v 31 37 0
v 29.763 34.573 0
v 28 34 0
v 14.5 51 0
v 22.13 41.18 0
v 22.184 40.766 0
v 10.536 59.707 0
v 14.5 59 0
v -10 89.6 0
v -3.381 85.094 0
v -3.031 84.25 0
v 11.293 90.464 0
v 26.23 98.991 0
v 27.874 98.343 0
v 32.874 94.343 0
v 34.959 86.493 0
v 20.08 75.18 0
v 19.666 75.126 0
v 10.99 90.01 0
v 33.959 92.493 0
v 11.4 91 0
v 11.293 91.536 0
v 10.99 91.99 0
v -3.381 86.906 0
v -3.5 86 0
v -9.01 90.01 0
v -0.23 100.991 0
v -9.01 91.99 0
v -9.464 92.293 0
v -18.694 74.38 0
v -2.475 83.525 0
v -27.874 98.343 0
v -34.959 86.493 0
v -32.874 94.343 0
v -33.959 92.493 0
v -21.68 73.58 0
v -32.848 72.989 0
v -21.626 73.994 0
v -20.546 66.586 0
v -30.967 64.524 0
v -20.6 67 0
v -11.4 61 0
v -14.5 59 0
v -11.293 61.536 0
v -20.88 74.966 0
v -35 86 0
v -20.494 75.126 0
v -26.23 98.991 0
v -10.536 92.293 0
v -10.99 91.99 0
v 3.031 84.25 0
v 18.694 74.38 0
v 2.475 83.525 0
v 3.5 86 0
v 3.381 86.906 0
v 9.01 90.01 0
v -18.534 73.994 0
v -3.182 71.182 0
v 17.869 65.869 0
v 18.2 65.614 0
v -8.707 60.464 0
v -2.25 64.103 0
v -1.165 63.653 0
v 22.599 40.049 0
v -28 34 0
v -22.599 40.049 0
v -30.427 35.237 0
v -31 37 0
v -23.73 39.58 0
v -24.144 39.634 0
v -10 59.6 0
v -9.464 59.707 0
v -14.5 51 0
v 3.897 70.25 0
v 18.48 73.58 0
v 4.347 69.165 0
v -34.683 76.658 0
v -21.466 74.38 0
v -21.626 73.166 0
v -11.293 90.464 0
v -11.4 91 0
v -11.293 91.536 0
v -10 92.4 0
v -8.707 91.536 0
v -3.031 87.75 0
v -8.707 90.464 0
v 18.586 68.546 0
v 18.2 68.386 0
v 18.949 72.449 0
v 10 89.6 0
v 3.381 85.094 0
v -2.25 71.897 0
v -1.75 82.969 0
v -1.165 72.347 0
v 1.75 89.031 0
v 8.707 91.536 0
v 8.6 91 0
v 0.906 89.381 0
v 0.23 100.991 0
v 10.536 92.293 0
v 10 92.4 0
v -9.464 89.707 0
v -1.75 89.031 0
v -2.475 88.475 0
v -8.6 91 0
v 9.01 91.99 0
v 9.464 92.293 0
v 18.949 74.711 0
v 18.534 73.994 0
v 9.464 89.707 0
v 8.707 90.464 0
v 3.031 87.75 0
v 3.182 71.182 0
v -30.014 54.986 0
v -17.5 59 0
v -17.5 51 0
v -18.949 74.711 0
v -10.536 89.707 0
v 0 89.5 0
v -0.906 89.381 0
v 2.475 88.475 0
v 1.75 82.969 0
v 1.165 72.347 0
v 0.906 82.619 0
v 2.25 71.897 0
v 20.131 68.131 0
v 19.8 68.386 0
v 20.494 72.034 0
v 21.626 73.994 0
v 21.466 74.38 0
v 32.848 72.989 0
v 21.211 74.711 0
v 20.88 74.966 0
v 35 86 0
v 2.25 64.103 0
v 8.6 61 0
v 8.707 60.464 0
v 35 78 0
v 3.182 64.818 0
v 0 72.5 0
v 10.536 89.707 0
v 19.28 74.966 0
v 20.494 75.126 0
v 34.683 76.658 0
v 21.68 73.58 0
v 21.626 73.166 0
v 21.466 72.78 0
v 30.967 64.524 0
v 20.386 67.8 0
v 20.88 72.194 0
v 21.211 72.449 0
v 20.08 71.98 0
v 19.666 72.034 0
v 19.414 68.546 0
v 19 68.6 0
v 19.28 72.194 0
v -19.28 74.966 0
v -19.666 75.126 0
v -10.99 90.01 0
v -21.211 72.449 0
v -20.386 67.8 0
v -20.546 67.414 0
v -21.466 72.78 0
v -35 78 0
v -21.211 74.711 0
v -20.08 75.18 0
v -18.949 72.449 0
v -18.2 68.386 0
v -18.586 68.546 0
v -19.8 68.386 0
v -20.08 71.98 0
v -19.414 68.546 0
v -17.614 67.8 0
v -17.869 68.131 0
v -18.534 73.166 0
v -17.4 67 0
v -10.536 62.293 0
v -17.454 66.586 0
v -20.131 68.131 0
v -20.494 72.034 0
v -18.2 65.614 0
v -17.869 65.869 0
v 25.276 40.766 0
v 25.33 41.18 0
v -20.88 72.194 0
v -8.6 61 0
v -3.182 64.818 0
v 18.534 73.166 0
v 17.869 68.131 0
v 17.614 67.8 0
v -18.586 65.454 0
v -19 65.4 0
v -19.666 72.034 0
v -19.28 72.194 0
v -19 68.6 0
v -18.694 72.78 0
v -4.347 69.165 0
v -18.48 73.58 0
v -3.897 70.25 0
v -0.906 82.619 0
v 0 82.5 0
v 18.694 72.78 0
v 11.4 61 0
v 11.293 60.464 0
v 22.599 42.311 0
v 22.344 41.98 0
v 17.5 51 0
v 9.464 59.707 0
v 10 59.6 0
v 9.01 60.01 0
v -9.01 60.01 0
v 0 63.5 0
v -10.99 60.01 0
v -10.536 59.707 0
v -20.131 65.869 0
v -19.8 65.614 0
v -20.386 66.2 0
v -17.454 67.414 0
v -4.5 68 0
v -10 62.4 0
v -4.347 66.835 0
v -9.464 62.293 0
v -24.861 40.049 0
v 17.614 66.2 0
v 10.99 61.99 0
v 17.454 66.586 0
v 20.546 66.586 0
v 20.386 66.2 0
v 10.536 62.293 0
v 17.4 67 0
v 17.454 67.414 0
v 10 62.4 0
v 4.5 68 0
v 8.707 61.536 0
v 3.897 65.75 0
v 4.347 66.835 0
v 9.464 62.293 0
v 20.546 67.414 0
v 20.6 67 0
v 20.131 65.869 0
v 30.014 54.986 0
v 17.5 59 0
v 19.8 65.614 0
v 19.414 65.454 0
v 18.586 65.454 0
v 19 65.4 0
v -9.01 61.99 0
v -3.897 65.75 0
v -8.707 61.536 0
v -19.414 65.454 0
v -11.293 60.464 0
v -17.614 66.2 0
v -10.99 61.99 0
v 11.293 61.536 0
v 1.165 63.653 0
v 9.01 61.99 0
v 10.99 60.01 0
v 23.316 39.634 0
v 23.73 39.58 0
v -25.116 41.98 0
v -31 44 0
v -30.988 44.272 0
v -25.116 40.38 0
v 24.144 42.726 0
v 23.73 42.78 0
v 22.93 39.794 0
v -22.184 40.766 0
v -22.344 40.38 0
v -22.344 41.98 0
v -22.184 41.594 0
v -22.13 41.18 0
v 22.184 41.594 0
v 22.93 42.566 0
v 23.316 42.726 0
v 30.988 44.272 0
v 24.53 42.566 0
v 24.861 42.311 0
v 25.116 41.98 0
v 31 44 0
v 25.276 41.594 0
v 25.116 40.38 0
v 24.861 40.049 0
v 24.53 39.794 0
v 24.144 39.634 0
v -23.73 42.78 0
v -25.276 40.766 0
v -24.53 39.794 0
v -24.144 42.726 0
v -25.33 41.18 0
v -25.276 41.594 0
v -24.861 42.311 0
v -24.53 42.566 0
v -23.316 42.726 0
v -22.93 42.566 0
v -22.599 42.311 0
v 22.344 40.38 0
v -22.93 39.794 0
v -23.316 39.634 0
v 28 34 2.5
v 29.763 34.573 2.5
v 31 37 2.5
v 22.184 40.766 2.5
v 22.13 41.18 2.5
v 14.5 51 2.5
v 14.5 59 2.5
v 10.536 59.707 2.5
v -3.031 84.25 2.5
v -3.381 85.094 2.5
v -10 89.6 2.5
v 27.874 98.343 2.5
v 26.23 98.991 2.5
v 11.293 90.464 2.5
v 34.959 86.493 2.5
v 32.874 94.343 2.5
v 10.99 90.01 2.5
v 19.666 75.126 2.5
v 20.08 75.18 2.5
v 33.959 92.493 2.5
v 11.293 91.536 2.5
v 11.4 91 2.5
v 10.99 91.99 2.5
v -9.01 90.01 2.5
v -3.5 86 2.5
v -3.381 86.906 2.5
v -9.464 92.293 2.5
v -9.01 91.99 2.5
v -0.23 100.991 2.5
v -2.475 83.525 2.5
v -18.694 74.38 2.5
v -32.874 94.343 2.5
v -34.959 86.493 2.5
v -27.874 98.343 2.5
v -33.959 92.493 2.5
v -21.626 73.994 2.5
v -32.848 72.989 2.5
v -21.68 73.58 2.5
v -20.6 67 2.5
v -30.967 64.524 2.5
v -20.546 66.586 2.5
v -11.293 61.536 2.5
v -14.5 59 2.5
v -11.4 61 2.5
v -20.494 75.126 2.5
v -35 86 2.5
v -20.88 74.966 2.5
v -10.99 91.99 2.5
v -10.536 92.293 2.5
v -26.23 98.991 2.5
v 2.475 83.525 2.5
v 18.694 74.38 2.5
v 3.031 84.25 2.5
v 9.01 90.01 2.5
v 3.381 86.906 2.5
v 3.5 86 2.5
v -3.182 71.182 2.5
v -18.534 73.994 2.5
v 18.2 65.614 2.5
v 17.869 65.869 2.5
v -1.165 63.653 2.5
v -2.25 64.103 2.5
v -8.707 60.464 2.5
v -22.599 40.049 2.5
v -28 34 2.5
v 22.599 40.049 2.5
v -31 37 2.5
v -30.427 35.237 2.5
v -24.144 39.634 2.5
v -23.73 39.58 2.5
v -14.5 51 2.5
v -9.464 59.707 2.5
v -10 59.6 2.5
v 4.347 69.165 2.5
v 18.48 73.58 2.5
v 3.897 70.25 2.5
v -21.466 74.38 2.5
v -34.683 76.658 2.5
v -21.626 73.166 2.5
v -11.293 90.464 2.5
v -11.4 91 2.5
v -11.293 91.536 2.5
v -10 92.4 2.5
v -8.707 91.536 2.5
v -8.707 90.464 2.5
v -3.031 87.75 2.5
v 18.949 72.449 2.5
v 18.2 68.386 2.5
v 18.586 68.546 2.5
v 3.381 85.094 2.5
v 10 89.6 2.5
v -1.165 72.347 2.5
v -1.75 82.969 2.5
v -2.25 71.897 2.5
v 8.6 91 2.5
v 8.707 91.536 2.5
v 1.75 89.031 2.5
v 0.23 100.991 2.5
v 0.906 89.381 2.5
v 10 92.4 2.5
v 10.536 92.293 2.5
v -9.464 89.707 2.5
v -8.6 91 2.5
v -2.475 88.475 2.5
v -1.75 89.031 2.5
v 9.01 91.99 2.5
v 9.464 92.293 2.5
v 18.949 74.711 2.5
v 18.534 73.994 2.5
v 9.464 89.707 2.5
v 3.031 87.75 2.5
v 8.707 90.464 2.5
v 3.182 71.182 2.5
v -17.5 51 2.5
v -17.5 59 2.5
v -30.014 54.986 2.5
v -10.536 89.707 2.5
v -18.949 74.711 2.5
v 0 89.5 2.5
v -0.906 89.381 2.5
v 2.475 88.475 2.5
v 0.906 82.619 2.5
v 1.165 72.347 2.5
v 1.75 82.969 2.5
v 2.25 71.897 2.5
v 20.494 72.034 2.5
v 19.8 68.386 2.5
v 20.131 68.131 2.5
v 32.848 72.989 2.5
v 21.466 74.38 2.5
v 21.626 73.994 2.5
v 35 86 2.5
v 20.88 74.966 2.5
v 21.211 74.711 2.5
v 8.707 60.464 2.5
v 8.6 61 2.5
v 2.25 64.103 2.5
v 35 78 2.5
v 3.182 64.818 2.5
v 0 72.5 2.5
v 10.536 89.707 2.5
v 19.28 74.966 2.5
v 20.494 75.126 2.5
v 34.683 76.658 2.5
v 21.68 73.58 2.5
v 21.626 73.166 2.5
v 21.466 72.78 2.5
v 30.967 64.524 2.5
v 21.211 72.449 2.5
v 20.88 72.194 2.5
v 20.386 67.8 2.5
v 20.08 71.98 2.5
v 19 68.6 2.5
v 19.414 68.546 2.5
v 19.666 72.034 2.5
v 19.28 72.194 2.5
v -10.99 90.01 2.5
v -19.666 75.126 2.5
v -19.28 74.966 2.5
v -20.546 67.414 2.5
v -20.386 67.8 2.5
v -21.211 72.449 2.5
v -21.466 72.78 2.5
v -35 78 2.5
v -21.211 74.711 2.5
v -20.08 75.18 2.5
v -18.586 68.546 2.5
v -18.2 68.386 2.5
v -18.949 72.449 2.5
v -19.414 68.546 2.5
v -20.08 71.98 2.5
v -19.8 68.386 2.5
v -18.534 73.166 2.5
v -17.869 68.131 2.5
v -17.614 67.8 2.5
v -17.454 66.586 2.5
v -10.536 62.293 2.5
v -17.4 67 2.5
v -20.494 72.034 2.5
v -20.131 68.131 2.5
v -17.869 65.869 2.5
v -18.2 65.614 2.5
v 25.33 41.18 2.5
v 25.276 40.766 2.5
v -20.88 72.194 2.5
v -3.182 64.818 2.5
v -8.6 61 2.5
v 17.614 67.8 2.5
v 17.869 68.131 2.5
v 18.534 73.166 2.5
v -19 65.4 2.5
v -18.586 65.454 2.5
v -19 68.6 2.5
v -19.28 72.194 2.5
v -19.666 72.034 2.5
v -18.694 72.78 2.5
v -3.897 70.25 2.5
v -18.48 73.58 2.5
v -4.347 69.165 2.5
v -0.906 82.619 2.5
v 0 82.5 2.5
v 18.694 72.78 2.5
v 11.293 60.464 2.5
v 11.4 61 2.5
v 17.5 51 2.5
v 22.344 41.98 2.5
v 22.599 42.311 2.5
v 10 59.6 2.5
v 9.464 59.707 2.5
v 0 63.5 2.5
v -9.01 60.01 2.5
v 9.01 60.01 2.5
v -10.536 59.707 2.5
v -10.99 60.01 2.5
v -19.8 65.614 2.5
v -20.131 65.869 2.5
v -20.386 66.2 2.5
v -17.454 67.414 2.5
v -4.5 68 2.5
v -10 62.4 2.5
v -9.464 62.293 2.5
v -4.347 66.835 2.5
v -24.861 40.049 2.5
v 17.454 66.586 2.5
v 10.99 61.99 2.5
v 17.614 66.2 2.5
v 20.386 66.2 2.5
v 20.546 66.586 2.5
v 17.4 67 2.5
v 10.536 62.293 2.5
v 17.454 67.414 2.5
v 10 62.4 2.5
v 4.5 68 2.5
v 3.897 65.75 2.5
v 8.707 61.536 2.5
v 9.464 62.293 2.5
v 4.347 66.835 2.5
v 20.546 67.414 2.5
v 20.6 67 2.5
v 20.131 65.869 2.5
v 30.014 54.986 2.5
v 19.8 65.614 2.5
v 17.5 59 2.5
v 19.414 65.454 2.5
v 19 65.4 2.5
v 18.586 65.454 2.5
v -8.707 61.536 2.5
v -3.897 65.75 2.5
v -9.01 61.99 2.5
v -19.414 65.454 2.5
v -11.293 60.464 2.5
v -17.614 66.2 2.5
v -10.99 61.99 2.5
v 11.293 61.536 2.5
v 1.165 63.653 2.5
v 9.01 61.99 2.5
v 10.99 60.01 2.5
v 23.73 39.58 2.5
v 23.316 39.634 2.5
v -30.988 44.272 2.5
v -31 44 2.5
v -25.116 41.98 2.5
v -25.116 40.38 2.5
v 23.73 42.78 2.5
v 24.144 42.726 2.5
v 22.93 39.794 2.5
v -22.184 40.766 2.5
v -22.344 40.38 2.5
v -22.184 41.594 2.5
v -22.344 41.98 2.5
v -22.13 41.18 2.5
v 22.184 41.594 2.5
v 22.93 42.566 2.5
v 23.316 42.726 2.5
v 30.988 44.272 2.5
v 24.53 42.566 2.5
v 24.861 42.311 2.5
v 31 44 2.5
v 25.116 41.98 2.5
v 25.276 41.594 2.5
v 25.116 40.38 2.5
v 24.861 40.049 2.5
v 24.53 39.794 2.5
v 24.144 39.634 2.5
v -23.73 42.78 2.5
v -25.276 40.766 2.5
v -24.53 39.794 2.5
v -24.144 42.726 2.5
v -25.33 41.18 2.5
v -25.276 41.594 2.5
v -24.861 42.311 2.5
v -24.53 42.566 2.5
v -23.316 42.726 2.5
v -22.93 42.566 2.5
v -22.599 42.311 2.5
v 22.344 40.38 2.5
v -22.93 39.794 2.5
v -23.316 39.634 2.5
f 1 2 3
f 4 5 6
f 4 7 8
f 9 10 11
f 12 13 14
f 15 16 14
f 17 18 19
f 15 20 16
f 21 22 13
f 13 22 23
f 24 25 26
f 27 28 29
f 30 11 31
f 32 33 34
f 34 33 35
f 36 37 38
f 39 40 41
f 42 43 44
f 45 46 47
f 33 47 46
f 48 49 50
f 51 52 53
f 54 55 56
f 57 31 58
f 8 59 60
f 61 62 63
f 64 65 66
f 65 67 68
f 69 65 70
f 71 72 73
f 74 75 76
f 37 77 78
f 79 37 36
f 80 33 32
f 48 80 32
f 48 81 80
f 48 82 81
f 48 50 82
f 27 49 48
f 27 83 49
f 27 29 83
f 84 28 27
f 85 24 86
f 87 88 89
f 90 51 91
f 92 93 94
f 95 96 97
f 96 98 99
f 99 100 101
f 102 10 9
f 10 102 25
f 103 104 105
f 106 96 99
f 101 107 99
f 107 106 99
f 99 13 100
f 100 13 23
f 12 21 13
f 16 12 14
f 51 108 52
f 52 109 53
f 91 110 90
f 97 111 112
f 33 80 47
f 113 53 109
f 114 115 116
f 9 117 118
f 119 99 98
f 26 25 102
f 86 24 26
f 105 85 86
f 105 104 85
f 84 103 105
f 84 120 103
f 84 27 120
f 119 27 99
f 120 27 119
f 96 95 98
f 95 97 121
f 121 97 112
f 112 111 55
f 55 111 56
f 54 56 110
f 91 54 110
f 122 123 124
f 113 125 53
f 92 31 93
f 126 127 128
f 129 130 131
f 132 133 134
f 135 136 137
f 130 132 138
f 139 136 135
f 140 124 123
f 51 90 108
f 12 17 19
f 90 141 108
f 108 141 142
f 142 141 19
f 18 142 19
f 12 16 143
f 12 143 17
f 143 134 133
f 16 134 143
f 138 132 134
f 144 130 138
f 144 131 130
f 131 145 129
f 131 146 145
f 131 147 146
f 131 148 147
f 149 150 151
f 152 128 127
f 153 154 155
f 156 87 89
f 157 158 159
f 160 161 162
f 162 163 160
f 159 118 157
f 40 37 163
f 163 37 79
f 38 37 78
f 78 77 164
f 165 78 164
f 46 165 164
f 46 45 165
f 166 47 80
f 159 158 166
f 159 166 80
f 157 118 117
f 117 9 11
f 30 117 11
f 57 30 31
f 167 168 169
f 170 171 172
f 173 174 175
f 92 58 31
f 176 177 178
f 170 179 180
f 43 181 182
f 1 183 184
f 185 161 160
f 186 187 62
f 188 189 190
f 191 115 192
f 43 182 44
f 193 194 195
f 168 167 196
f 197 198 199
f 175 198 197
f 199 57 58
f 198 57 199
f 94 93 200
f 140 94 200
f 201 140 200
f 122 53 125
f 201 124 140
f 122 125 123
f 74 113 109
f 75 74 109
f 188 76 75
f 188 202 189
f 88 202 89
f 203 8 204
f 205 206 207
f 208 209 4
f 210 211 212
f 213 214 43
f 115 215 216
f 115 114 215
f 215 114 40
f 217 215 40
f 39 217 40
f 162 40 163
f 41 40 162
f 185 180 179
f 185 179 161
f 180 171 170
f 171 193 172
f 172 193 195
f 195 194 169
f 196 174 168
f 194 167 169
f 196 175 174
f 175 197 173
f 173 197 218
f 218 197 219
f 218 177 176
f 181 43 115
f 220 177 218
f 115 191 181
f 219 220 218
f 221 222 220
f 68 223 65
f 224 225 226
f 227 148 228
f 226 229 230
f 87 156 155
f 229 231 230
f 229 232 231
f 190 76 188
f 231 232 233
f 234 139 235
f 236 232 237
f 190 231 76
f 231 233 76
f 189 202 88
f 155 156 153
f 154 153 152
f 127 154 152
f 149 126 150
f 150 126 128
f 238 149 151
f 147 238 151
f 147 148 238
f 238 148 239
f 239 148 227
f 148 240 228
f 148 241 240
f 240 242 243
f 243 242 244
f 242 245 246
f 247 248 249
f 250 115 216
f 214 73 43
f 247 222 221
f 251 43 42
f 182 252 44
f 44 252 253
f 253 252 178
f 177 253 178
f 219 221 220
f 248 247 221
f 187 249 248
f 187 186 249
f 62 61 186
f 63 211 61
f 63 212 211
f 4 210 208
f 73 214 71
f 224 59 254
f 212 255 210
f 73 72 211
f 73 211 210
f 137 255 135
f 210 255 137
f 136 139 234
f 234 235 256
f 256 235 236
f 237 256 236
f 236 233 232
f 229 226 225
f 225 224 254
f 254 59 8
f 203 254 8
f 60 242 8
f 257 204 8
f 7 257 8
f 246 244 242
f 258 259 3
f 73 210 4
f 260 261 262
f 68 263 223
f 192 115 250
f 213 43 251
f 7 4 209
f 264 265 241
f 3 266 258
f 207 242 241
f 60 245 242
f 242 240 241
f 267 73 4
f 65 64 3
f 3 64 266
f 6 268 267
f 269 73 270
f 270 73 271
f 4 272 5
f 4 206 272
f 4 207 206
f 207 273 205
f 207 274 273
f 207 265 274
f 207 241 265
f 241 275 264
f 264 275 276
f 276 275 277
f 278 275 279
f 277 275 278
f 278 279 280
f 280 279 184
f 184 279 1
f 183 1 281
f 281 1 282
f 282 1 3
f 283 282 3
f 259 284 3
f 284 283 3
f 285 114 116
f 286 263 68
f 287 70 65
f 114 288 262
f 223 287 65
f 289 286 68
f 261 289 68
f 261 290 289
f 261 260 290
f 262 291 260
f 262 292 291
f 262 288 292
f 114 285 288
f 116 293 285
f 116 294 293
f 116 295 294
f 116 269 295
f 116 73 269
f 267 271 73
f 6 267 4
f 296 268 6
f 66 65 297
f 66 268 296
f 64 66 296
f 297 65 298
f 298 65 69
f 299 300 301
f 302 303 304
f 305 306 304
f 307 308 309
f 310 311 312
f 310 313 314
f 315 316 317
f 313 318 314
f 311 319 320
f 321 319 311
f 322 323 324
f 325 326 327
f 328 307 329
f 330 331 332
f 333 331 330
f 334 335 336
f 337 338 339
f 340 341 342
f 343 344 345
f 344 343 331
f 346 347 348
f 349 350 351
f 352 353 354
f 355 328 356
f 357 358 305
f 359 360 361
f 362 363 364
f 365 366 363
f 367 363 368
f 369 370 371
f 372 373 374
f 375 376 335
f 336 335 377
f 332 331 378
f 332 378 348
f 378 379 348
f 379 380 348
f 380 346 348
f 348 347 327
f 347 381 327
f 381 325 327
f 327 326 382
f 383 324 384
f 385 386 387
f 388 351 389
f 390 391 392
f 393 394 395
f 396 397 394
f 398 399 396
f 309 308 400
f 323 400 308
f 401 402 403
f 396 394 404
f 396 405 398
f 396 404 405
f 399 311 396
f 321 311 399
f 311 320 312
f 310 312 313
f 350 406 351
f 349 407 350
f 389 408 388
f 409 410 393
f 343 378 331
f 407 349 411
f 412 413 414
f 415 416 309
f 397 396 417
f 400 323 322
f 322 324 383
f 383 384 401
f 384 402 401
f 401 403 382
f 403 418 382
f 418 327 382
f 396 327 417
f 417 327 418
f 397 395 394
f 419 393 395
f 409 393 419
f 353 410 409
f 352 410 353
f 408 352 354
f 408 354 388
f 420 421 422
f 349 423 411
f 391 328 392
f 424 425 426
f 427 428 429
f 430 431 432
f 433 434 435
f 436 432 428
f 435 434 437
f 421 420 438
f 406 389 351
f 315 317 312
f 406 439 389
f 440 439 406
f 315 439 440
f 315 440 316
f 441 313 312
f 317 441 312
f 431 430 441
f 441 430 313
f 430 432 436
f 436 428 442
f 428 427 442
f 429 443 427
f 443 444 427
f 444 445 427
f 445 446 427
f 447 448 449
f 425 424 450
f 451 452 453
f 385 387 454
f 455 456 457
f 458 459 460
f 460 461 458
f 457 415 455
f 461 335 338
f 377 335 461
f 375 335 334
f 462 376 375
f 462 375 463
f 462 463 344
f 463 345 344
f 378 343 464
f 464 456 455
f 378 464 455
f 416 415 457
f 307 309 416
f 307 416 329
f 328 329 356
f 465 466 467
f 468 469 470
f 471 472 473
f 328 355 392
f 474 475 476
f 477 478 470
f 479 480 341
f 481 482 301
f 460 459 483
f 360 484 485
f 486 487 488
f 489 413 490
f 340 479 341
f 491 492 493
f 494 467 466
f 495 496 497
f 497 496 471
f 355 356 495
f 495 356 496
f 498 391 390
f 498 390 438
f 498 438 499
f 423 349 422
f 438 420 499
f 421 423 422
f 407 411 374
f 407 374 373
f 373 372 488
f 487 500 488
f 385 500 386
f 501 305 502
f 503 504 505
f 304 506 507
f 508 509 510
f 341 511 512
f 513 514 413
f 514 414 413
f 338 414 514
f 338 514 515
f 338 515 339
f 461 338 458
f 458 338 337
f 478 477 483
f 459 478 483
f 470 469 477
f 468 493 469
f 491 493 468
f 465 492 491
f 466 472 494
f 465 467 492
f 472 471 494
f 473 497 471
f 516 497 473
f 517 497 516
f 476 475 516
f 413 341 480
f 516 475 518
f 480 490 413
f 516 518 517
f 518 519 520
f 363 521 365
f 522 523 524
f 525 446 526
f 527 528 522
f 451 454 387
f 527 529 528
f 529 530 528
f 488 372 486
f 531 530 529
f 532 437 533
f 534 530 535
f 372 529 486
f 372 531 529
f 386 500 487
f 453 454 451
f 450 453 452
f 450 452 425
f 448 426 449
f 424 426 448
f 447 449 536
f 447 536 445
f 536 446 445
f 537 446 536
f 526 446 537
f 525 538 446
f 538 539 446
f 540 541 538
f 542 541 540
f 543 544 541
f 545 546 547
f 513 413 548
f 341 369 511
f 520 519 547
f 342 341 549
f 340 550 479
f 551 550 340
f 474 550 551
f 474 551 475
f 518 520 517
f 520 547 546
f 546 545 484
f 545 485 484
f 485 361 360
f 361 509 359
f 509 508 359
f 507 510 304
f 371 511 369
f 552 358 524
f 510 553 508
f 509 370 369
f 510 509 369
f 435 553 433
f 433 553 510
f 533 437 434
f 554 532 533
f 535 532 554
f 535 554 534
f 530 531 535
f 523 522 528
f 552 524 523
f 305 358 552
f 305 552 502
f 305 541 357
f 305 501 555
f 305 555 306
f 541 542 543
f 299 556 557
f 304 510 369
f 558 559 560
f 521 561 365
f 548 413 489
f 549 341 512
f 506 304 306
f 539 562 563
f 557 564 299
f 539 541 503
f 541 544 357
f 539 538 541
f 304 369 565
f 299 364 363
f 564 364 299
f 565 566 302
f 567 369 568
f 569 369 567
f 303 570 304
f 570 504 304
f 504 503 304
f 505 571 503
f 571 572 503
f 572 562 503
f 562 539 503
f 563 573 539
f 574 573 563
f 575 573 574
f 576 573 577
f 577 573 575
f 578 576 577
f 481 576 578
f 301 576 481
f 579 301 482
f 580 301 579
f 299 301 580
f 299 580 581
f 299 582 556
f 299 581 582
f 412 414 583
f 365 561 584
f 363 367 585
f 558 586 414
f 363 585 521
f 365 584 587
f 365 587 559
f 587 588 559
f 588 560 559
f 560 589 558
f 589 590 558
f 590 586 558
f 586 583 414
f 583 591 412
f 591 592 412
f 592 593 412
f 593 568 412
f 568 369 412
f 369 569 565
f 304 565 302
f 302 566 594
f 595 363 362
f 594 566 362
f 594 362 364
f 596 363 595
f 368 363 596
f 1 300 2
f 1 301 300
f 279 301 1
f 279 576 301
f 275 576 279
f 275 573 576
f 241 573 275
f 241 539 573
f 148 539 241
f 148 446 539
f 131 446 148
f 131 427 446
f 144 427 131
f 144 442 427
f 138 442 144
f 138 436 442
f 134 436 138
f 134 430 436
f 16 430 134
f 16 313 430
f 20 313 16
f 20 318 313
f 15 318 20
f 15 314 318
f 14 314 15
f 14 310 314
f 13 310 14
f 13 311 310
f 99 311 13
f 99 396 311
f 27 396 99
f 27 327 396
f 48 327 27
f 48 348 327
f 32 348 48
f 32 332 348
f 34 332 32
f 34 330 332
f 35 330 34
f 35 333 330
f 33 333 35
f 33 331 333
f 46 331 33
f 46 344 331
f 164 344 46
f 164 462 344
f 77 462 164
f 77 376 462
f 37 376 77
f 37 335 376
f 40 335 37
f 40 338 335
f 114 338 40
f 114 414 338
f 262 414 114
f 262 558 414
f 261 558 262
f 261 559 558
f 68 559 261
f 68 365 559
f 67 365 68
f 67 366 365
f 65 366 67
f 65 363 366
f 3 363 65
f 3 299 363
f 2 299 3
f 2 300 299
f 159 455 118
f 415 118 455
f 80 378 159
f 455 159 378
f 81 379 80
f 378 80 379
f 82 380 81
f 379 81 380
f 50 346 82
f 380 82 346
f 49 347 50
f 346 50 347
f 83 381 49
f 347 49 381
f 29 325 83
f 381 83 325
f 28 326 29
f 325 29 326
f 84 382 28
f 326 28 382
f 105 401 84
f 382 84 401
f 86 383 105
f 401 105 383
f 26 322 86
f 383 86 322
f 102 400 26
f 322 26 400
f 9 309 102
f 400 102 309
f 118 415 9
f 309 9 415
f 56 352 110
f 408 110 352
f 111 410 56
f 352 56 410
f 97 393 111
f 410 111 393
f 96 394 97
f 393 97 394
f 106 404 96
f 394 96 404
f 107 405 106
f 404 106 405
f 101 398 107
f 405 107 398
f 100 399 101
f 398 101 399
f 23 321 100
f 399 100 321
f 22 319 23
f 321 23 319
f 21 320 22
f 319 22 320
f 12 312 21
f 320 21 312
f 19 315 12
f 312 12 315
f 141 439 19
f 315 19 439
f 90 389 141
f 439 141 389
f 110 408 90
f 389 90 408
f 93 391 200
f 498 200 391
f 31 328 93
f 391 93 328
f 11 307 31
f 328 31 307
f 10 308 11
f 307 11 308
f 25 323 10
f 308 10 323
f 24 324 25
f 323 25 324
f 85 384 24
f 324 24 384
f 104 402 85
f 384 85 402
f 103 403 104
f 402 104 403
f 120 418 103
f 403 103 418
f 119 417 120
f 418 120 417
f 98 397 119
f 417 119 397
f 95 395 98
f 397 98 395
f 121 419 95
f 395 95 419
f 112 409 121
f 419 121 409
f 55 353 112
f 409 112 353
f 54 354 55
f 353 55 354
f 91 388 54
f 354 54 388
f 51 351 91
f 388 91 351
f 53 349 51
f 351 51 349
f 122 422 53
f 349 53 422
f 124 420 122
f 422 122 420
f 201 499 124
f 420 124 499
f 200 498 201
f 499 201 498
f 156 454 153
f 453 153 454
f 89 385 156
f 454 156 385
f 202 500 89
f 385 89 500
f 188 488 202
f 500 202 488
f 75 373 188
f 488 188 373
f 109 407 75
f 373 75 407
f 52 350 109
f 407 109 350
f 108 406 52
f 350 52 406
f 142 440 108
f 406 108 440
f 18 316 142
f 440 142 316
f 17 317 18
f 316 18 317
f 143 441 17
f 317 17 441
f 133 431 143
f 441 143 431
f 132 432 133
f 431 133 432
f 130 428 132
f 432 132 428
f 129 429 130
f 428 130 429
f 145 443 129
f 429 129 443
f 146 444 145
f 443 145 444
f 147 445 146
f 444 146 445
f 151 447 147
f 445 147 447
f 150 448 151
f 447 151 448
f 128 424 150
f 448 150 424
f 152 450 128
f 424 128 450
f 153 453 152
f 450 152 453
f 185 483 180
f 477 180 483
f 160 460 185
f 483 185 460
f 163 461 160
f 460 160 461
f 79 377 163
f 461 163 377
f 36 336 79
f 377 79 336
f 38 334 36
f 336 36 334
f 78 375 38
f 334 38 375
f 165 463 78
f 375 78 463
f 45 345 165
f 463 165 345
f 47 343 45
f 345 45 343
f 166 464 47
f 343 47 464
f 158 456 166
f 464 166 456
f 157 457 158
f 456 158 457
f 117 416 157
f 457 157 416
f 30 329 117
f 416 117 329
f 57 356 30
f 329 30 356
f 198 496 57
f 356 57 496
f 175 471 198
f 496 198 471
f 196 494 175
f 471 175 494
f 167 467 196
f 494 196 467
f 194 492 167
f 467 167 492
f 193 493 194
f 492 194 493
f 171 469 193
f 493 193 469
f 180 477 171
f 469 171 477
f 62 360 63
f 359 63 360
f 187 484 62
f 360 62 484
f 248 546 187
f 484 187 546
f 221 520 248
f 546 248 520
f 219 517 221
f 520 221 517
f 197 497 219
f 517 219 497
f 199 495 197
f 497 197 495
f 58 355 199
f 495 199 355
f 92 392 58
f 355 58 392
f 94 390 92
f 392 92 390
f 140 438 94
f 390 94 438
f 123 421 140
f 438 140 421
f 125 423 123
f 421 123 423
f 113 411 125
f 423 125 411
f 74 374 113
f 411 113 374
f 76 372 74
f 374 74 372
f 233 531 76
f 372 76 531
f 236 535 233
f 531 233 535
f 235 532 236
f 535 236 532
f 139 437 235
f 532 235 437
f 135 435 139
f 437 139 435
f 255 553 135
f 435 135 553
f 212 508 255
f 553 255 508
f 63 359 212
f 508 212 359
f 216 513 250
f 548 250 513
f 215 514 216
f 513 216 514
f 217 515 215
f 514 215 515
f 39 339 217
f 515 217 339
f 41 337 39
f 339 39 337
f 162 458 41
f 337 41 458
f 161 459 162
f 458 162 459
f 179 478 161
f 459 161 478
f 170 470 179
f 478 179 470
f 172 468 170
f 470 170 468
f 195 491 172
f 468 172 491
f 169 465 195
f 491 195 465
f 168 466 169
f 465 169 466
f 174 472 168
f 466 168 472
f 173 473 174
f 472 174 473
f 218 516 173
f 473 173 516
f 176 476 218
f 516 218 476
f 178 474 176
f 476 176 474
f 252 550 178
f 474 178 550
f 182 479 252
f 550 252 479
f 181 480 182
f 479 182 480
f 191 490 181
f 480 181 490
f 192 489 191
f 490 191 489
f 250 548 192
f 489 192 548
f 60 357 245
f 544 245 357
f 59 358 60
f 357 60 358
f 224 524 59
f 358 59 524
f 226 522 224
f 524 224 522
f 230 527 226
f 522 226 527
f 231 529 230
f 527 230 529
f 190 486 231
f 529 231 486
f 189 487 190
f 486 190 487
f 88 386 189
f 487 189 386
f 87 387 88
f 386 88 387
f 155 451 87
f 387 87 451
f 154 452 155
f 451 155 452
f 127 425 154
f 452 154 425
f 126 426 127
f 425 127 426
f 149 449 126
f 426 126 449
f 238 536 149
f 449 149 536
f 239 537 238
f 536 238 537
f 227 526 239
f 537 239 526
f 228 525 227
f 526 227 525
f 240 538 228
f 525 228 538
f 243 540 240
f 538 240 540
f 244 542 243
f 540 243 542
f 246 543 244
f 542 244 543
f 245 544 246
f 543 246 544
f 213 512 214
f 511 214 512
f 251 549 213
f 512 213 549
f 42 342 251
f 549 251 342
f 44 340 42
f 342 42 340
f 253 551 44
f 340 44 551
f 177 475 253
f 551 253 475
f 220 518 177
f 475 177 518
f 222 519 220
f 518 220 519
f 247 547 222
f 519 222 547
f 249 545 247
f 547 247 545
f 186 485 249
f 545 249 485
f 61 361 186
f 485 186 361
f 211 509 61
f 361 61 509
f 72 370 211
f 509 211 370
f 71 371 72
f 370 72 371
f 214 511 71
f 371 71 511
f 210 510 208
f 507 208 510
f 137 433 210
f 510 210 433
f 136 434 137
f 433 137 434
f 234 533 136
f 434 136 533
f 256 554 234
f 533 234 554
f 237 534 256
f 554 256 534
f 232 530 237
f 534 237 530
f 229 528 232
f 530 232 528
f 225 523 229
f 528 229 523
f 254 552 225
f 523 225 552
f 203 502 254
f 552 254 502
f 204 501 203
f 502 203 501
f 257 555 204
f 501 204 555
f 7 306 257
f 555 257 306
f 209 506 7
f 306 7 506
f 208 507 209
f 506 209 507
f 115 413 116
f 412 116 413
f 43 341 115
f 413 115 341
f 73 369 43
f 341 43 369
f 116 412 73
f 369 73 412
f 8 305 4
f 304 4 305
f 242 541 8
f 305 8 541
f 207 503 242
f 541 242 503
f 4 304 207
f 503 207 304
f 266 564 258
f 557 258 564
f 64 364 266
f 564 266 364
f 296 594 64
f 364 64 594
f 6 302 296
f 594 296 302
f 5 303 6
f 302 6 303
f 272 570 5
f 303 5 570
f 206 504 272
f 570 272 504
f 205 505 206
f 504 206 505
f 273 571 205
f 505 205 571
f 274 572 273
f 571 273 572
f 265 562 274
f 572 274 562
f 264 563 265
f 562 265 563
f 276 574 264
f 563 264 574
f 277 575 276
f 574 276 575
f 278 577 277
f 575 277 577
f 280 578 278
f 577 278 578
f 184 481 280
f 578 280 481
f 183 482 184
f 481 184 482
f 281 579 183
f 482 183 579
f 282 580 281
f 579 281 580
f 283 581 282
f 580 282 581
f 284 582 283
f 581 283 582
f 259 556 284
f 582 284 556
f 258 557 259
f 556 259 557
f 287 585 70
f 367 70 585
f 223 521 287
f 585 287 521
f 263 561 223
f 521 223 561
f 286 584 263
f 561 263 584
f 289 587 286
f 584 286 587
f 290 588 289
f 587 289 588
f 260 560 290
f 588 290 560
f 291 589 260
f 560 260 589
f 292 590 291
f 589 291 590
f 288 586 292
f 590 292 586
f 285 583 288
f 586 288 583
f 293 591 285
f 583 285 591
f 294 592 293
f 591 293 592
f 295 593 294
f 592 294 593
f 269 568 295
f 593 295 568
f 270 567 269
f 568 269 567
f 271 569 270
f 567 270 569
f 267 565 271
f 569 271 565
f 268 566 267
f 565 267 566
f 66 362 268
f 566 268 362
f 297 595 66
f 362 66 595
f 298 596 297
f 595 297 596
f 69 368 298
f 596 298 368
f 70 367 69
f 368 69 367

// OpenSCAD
// GNSS Roof Plate — JeNo 7" Sentinel RTK Build
// ==============================================
// A forward-cantilevered carbon roof plate that mounts on M3 standoffs
// above the JeNo 7 top plate. Carries the UM980 + Q39 helix forward of
// the battery so pack swaps stay unobstructed.
//
// Output modes:
//   3D model (default)    → export STL for visualization
//   export_2d = true      → export DXF for carbon cutting
//
// Example:
//   openscad -o GNSS_Roof_Plate.stl GNSS_Roof_Plate.scad
//   openscad -o GNSS_Roof_Plate.dxf -D 'export_2d=true' GNSS_Roof_Plate.scad
//
// Coordinate system: matches JeNo 7 STEP file
//   X+ = right, Y+ = forward, Z+ = up
//   Top plate Z = 30.0–32.5mm

// ============================================================
// PARAMETERS — edit these to fit your hardware
// ============================================================

plate_thickness   = 2.5;   // [2, 2.5, 3] mm carbon plate
standoff_height   = 20;    // mm from JeNo top plate top face
screw_dia_m3      = 3.2;   // M3 clearance hole
screw_dia_m2_5    = 2.8;   // M2.5 clearance hole

// ============================================================
// STANDOFF MOUNTING — JENO 7 TOP PLATE HOLE PATTERN
// ============================================================

// These are the existing holes on the JeNo 7 top plate (Z=32.5mm).
// The roof plate uses M3 male-female standoffs screwed into these.
standoff_positions = [
    [ 20.08,  73.58],   // front right
    [-20.08,  73.58],   // front left
    [ 23.73,  41.18],   // rear right
    [-23.73,  41.18],   // rear left
];

// ============================================================
// GNSS PAYLOAD
// ============================================================

// UM980 carrier board: ~26x38mm, M2.5 on ~20x32mm pattern
um980_center   = [0, 76];
um980_mount_xy = [20, 30];           // M2.5 hole spacing (x, y)
um980_screw    = screw_dia_m2_5;

// Q39 helix antenna: 48mm dia, M3 on 38mm square
q39_center     = [0, 86];
q39_diameter   = 48;
q39_mount      = 38;                  // square spacing
q39_screw      = screw_dia_m3;
sma_hole       = 7.0;                 // SMA pass-through at Q39 center

// Cable pass-through for UM980 UART + power
cable_hole_pos = [0, 68];
cable_hole_dia = 9.0;

// UBEC — FPVKing Micro UBEC 5V/3A mounted on plate underside
// ~20×15×6mm body, zip-tie or VHB
ubec_center    = [0, 55];
ubec_size      = [20, 15, 6];

// Anti-rotation pin holes for zip-ties securing the UBEC
ubec_strap_slots = [
    [-16, 55], [16, 55]
];

// ============================================================
// PLATE OUTLINE (top-down polyline, Z=0 plane)
// ============================================================

// Matches the JeNo top plate profile in the mounting region,
// flares ~4mm wider at the GNSS section for payload clearance,
// then tapers to a rounded nose forward of the camera.
//
// The battery on the main top plate (roughly Y=-40 to Y=+55)
// is completely unobstructed — this roof only covers Y=37 to Y=94.

plate_outline = [
    // — rear edge (flat) —
    [-28, 37], [28, 37],
    // — right side, going forward —
    [28, 44],
    [27, 55],                        // matches top plate waist
    [28, 65],
    [30, 74],                        // flare starts near front standoffs
    [32, 78],
    [32, 86],                        // widest — Q39 fits with 8mm margin
    [31, 92],
    [26, 96],
    [0,  98],                         // rounded nose
    // — left side, coming back —
    [-26, 96],
    [-31, 92],
    [-32, 86],
    [-32, 78],
    [-30, 74],
    [-28, 65],
    [-27, 55],
    [-28, 44],
];

// ============================================================
// RENDER SWITCH
// ============================================================

export_2d = false;   // set true for DXF export

// ============================================================
// MODULES
// ============================================================

module main_shape_2d() {
    // Plate body with 3mm corner fillets
    offset(r = 3) polygon(plate_outline);
}

module standoff_holes_2d() {
    for (p = standoff_positions)
        translate(p) circle(d = screw_dia_m3, $fn = 24);
}

module um980_holes_2d() {
    for (x = [-1, 1], y = [-1, 1])
        translate([
            um980_center[0] + x * um980_mount_xy[0] / 2,
            um980_center[1] + y * um980_mount_xy[1] / 2
        ]) circle(d = um980_screw, $fn = 16);
}

module q39_holes_2d() {
    for (x = [-1, 1], y = [-1, 1])
        translate([
            q39_center[0] + x * q39_mount / 2,
            q39_center[1] + y * q39_mount / 2
        ]) circle(d = q39_screw, $fn = 24);
    // SMA pass-through at Q39 center
    translate(q39_center) circle(d = sma_hole, $fn = 24);
}

module cable_hole_2d() {
    translate(cable_hole_pos) circle(d = cable_hole_dia, $fn = 24);
}

module ubec_strap_slots_2d() {
    // Small slots for zip-ties securing the UBEC on the underside
    for (p = ubec_strap_slots)
        translate(p)
            square([3, 8], center = true);
}

module all_holes_2d() {
    standoff_holes_2d();
    um980_holes_2d();
    q39_holes_2d();
    cable_hole_2d();
    ubec_strap_slots_2d();
}

// ============================================================
// OUTPUT
// ============================================================

if (export_2d) {
    // 2D profile for DXF export (carbon cutter)
    difference() {
        main_shape_2d();
        all_holes_2d();
    }
} else {
    // 3D model for STL export (visualization / test print)
    color("DimGray") linear_extrude(height = plate_thickness, convexity = 10)
        difference() {
            main_shape_2d();
            all_holes_2d();
        }

    // Show the UM980 carrier as a translucent reference
    %translate([um980_center[0], um980_center[1], plate_thickness])
        color("RoyalBlue", 0.3)
            cube([26, 38, 1.6], center = true);

    // Show the Q39 helix as a translucent reference
    %translate([q39_center[0], q39_center[1], plate_thickness])
        color("MediumSeaGreen", 0.25)
            cylinder(d = q39_diameter, h = 10, $fn = 48);

    // Show standoff columns as reference
    for (p = standoff_positions) {
        %translate([p[0], p[1], -standoff_height])
            color("Silver", 0.3)
                cylinder(d = 5, h = standoff_height, $fn = 16);
    }

    // Show the UBEC on the underside as a translucent reference
    %translate([ubec_center[0], ubec_center[1], -6])
        color("Goldenrod", 0.25)
            cube([ubec_size[0], ubec_size[1], ubec_size[2]], center = true);
}
